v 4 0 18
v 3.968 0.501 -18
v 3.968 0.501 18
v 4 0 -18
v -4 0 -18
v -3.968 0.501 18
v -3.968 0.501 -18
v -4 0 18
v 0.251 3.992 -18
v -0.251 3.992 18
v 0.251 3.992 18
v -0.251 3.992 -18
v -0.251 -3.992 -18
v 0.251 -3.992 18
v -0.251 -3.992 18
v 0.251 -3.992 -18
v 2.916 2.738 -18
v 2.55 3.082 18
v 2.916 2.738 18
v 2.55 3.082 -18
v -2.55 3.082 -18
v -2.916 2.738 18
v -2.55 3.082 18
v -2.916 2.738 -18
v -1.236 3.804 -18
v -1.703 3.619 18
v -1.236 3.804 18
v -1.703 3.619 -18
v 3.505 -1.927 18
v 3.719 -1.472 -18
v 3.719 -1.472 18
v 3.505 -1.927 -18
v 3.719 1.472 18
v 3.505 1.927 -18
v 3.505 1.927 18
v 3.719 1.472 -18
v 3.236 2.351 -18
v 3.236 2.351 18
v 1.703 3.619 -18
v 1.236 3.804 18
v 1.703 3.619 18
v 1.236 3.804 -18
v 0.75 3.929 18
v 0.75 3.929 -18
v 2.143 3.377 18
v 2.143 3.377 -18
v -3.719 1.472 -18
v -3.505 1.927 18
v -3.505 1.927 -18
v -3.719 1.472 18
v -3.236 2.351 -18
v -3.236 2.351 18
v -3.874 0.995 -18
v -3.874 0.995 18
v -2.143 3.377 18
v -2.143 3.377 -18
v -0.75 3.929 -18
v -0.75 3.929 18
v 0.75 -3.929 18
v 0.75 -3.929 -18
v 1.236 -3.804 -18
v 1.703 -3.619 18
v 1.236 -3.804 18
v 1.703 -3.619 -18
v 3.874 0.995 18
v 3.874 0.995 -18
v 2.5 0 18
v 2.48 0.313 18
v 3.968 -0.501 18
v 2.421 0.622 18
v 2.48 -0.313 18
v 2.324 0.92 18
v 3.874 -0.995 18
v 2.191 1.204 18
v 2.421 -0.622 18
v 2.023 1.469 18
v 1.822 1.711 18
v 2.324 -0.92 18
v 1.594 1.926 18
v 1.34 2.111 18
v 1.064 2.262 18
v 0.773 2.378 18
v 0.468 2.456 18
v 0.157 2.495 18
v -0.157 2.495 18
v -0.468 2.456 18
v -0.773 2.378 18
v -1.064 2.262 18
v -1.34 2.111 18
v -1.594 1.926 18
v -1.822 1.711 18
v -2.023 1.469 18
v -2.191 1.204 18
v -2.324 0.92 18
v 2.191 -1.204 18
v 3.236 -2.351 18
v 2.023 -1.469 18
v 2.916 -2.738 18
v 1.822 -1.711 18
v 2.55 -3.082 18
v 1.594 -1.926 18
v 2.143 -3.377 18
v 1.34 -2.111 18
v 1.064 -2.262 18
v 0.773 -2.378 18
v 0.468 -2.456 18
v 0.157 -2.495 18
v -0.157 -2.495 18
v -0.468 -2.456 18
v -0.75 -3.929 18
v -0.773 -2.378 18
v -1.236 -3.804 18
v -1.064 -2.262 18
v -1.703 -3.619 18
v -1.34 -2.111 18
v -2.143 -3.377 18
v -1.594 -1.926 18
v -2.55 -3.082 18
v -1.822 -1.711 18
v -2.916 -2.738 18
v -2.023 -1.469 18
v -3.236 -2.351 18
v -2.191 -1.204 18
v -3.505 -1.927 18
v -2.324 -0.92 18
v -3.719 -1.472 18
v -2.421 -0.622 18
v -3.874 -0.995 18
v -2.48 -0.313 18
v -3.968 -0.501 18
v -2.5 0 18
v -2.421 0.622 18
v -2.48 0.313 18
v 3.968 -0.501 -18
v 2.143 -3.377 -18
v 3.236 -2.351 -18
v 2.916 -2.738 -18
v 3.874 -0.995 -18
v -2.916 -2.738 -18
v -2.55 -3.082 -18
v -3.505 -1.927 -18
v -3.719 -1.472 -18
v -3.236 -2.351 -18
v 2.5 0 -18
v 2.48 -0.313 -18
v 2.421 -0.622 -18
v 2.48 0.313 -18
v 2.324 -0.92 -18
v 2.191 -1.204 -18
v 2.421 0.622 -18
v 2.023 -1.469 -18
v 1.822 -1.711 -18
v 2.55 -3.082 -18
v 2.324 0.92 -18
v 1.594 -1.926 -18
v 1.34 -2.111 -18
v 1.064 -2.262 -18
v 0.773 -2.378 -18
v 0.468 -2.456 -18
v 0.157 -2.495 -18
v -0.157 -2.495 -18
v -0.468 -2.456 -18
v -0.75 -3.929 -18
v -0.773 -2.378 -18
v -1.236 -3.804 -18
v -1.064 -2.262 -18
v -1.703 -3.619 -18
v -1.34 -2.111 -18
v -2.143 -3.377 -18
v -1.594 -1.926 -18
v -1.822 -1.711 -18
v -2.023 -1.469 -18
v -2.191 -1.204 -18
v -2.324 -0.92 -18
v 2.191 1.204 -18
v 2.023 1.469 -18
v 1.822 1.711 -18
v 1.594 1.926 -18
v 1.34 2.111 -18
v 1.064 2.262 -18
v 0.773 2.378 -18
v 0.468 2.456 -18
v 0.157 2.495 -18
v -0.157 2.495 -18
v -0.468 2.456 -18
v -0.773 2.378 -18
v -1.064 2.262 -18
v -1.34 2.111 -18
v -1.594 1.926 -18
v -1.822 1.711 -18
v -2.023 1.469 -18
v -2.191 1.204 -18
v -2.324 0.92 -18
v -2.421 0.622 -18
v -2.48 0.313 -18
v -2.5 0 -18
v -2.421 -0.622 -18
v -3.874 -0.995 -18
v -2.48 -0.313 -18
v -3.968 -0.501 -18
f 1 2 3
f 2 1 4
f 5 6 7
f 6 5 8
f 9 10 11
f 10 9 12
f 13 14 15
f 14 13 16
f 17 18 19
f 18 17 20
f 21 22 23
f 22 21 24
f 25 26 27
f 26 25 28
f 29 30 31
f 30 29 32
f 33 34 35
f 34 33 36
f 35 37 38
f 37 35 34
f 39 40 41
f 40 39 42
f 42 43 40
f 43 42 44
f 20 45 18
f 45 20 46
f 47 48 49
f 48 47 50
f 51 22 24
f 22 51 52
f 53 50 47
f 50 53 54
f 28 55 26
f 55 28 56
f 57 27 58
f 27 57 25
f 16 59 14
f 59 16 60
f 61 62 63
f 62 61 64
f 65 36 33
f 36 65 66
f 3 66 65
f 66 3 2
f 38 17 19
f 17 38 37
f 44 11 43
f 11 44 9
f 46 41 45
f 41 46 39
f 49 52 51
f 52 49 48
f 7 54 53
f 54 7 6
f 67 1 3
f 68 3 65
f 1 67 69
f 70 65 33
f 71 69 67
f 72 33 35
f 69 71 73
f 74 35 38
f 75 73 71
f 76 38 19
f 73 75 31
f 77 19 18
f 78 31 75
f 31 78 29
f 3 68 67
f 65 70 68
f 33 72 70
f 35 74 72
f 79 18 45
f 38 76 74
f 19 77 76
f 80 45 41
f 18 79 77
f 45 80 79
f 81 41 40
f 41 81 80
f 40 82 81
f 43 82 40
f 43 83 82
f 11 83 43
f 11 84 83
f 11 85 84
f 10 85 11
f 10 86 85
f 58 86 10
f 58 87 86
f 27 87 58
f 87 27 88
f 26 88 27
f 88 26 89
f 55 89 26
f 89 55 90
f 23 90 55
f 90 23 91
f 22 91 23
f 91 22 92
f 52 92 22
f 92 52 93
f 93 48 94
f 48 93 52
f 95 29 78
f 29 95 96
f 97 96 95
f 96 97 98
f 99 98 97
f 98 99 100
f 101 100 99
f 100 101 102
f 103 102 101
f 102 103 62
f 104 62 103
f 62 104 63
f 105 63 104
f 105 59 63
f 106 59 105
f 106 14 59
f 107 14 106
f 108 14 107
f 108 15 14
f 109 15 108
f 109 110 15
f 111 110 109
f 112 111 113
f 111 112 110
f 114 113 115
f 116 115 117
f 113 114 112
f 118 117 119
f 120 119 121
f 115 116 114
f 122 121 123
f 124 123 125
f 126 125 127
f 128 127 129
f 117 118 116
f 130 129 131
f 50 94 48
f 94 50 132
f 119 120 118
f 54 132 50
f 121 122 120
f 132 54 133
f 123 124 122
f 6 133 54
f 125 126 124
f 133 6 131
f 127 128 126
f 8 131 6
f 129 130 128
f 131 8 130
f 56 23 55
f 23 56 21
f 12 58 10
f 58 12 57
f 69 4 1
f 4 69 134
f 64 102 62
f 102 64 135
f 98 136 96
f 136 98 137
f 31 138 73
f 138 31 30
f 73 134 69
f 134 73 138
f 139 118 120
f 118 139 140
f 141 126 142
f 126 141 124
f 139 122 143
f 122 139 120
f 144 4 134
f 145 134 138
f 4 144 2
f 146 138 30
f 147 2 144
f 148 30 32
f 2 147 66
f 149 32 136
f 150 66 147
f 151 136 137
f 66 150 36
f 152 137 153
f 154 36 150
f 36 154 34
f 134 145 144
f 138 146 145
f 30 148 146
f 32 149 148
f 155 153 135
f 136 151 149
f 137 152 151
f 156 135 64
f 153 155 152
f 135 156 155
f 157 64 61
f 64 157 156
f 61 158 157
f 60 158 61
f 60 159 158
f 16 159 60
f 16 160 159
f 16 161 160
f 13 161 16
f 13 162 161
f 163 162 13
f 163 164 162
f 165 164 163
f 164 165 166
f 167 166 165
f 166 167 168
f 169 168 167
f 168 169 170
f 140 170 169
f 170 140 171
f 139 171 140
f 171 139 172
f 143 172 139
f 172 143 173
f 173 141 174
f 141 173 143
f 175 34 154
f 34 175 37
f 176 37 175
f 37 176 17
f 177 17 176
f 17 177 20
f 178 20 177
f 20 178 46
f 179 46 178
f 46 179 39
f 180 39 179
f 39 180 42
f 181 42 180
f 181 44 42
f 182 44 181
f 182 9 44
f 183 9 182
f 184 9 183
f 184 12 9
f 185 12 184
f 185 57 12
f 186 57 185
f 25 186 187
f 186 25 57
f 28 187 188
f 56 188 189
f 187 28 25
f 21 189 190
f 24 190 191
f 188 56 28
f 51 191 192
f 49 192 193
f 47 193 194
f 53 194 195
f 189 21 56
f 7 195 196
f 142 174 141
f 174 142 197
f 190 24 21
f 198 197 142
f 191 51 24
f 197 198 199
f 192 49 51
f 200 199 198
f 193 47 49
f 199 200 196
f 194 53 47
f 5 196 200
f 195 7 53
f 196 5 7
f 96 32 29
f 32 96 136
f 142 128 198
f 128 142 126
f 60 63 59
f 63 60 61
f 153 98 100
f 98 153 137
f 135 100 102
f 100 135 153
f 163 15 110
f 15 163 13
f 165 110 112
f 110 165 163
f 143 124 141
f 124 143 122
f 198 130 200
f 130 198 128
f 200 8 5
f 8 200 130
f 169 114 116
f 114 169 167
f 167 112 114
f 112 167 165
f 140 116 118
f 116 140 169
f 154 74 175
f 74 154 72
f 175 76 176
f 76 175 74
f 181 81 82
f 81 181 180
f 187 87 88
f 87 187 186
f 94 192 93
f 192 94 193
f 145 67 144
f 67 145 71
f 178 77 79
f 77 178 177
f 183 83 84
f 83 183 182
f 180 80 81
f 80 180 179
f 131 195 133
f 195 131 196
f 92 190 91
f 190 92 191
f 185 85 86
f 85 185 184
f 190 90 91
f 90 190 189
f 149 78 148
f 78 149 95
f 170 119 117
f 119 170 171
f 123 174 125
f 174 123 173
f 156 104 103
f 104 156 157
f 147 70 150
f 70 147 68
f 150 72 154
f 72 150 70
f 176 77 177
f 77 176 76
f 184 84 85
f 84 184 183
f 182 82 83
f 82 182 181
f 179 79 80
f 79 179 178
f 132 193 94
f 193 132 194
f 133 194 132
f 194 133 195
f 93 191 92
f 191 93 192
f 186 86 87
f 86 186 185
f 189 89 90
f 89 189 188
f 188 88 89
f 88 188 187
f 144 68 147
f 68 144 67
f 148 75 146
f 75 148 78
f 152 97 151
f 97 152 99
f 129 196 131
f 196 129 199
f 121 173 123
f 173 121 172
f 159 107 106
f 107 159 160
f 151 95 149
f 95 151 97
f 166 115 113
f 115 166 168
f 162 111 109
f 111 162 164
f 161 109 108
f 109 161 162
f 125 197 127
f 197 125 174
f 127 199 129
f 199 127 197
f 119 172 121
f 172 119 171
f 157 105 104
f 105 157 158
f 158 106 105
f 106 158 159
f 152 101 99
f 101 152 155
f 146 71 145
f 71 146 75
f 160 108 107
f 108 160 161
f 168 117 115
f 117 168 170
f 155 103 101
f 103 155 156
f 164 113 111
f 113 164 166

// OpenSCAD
$fn = 50;


difference() {
	union() {
		translate(v = [0, 0, -18.0000000000]) {
			cylinder(h = 36, r = 4.0000000000);
		}
	}
	union() {
		translate(v = [0, 0, -100.0000000000]) {
			cylinder(h = 200, r = 2.5000000000);
		}
	}
}
